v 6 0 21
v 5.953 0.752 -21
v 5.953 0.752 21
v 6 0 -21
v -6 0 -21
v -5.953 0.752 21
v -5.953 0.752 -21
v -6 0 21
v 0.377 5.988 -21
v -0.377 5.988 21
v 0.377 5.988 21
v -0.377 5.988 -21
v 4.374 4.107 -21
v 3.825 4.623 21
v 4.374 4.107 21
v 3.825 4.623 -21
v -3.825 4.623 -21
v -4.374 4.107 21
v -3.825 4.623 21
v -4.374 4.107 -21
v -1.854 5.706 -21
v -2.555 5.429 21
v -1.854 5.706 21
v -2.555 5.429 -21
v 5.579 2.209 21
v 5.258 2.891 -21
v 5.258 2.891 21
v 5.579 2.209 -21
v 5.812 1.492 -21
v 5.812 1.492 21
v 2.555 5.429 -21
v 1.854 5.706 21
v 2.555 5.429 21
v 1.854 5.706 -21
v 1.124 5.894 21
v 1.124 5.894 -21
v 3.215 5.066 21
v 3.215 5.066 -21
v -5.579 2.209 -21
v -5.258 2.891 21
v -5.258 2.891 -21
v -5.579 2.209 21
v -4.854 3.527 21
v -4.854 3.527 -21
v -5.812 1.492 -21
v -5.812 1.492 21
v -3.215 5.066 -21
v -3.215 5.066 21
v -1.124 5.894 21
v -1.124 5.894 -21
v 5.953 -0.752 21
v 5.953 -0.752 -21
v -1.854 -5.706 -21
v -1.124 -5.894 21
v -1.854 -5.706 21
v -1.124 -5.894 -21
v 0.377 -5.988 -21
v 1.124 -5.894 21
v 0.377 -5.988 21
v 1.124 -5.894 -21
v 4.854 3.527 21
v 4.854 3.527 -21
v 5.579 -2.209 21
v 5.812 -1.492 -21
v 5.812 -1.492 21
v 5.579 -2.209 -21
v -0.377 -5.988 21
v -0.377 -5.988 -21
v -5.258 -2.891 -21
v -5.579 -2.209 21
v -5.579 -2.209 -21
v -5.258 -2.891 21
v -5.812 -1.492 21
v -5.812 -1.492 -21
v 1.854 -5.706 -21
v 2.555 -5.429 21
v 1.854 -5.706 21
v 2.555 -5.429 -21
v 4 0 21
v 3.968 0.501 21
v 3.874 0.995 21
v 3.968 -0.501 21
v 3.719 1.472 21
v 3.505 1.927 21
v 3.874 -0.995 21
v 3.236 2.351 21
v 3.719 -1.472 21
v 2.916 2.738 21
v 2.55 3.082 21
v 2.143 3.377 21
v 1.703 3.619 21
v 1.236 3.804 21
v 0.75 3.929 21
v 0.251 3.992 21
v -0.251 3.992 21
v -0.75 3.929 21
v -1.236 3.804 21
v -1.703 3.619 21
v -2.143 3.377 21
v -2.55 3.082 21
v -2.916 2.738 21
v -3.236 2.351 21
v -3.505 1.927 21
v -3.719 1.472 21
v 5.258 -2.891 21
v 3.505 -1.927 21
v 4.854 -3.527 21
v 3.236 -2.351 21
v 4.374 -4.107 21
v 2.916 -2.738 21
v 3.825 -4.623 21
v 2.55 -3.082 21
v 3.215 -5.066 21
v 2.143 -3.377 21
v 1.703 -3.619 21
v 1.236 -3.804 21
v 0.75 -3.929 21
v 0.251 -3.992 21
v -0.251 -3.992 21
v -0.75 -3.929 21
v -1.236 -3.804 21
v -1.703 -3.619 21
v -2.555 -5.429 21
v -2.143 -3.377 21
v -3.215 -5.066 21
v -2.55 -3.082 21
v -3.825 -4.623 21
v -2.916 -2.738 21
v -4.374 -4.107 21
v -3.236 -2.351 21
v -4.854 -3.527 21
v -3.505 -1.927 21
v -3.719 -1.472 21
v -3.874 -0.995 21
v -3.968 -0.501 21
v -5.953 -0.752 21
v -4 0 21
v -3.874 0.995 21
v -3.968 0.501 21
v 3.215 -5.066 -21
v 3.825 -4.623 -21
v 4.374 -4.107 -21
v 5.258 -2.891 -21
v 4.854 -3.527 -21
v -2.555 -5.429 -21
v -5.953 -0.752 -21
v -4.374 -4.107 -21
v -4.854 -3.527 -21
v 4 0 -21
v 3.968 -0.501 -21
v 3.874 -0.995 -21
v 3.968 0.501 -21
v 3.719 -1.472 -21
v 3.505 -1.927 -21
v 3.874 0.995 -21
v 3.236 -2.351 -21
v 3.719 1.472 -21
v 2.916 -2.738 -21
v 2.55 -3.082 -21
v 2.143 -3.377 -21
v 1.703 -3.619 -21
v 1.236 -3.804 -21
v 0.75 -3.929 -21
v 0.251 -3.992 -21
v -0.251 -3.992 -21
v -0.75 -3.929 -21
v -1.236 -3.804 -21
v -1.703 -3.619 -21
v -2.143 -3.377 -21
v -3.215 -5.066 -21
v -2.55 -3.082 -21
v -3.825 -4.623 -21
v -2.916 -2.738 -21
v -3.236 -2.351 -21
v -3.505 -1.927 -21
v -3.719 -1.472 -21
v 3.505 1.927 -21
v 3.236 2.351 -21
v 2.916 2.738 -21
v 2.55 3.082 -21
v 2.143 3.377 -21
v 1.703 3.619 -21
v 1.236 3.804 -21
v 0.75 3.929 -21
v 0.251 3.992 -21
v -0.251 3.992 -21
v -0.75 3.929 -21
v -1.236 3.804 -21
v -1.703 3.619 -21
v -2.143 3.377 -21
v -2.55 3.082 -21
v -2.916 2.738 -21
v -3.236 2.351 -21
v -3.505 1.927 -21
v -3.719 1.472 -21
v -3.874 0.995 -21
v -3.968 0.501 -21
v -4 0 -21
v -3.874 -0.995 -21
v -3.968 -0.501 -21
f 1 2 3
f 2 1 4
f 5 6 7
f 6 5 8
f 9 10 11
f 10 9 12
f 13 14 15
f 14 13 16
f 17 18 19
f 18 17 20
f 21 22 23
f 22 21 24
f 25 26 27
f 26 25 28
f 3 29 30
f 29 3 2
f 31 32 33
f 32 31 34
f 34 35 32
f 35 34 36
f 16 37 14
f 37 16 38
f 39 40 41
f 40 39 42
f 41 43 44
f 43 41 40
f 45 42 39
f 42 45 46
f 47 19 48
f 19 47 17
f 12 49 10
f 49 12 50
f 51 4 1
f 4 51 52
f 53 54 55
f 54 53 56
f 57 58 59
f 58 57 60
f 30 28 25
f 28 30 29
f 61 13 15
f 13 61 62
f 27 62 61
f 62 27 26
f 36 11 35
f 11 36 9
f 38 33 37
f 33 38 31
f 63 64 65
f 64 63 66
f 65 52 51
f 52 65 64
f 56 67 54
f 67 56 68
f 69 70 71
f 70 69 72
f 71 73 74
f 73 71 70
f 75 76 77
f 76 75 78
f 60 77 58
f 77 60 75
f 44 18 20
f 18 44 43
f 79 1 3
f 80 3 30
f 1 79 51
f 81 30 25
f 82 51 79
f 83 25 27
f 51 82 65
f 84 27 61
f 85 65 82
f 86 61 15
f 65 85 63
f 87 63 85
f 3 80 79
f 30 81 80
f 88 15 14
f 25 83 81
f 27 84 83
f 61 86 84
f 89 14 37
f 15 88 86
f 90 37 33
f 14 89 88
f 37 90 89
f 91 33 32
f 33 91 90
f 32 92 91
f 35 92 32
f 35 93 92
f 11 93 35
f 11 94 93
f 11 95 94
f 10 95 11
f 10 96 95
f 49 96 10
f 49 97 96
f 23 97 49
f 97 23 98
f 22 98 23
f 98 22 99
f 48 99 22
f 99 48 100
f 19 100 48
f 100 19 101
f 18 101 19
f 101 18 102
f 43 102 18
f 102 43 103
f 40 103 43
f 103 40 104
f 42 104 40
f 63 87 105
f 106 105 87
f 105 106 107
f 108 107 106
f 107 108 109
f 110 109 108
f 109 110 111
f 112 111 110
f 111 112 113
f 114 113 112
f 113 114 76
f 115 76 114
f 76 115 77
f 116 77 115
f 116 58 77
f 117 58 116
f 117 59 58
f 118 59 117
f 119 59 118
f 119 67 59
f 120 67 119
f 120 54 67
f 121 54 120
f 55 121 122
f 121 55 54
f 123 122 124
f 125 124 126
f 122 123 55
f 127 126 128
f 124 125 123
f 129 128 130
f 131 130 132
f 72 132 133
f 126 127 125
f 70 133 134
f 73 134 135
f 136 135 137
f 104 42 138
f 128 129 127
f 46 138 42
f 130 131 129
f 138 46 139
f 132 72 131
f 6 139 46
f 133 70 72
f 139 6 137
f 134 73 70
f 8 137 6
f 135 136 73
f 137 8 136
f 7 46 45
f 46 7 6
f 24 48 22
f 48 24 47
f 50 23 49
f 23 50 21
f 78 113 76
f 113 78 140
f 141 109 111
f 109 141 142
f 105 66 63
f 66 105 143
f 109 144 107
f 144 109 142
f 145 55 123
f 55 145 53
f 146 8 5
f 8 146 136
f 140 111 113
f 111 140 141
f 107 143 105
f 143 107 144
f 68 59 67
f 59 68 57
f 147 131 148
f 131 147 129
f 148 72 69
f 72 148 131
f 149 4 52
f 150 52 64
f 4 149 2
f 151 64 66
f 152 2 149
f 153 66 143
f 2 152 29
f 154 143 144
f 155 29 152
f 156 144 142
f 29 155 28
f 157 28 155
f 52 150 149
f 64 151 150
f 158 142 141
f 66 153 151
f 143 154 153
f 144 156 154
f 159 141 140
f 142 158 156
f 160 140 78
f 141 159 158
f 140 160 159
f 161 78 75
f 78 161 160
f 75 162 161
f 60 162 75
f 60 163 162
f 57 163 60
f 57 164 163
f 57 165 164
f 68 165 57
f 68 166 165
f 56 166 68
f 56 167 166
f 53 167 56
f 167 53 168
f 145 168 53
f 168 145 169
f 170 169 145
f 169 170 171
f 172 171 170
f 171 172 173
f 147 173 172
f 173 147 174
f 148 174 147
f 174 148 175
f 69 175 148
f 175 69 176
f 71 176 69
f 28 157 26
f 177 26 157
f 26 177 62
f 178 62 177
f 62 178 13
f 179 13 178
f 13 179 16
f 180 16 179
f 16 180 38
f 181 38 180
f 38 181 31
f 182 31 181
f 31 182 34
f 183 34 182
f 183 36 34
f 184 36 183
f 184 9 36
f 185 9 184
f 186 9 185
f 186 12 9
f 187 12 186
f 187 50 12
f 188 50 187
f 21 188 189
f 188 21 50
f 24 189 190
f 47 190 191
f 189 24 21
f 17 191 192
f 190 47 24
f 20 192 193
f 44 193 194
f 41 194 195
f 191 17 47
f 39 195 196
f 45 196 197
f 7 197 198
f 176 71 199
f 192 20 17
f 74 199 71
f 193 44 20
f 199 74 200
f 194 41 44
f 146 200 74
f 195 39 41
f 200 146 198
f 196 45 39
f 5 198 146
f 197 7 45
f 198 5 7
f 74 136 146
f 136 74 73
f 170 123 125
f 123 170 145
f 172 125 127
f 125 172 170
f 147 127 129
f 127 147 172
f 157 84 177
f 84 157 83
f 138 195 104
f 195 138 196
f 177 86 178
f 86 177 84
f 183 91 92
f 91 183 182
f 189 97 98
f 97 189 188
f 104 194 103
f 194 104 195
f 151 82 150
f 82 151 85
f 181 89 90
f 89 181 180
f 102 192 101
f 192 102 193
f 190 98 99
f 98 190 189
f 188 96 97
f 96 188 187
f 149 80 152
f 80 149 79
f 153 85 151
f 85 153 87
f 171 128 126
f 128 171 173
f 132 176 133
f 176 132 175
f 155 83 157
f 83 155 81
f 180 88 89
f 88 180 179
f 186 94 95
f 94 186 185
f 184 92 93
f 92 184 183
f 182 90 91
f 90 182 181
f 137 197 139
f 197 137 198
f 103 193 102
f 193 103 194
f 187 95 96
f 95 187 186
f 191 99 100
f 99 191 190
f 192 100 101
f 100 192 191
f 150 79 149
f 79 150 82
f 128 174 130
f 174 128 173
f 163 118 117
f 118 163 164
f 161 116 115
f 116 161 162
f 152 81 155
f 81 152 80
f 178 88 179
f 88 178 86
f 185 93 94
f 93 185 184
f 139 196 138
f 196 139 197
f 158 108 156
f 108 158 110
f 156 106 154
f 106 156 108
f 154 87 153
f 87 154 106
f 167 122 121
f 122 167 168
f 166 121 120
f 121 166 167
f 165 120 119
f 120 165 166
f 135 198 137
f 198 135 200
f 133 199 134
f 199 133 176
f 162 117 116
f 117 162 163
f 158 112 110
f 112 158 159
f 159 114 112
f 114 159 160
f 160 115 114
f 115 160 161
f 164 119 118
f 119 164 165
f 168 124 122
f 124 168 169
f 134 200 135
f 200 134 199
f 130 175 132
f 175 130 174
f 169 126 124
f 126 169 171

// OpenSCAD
$fn = 50;


difference() {
	union() {
		translate(v = [0, 0, -21.0000000000]) {
			cylinder(h = 42, r = 6.0000000000);
		}
	}
	union() {
		translate(v = [0, 0, -100.0000000000]) {
			cylinder(h = 200, r = 4.0000000000);
		}
	}
}
